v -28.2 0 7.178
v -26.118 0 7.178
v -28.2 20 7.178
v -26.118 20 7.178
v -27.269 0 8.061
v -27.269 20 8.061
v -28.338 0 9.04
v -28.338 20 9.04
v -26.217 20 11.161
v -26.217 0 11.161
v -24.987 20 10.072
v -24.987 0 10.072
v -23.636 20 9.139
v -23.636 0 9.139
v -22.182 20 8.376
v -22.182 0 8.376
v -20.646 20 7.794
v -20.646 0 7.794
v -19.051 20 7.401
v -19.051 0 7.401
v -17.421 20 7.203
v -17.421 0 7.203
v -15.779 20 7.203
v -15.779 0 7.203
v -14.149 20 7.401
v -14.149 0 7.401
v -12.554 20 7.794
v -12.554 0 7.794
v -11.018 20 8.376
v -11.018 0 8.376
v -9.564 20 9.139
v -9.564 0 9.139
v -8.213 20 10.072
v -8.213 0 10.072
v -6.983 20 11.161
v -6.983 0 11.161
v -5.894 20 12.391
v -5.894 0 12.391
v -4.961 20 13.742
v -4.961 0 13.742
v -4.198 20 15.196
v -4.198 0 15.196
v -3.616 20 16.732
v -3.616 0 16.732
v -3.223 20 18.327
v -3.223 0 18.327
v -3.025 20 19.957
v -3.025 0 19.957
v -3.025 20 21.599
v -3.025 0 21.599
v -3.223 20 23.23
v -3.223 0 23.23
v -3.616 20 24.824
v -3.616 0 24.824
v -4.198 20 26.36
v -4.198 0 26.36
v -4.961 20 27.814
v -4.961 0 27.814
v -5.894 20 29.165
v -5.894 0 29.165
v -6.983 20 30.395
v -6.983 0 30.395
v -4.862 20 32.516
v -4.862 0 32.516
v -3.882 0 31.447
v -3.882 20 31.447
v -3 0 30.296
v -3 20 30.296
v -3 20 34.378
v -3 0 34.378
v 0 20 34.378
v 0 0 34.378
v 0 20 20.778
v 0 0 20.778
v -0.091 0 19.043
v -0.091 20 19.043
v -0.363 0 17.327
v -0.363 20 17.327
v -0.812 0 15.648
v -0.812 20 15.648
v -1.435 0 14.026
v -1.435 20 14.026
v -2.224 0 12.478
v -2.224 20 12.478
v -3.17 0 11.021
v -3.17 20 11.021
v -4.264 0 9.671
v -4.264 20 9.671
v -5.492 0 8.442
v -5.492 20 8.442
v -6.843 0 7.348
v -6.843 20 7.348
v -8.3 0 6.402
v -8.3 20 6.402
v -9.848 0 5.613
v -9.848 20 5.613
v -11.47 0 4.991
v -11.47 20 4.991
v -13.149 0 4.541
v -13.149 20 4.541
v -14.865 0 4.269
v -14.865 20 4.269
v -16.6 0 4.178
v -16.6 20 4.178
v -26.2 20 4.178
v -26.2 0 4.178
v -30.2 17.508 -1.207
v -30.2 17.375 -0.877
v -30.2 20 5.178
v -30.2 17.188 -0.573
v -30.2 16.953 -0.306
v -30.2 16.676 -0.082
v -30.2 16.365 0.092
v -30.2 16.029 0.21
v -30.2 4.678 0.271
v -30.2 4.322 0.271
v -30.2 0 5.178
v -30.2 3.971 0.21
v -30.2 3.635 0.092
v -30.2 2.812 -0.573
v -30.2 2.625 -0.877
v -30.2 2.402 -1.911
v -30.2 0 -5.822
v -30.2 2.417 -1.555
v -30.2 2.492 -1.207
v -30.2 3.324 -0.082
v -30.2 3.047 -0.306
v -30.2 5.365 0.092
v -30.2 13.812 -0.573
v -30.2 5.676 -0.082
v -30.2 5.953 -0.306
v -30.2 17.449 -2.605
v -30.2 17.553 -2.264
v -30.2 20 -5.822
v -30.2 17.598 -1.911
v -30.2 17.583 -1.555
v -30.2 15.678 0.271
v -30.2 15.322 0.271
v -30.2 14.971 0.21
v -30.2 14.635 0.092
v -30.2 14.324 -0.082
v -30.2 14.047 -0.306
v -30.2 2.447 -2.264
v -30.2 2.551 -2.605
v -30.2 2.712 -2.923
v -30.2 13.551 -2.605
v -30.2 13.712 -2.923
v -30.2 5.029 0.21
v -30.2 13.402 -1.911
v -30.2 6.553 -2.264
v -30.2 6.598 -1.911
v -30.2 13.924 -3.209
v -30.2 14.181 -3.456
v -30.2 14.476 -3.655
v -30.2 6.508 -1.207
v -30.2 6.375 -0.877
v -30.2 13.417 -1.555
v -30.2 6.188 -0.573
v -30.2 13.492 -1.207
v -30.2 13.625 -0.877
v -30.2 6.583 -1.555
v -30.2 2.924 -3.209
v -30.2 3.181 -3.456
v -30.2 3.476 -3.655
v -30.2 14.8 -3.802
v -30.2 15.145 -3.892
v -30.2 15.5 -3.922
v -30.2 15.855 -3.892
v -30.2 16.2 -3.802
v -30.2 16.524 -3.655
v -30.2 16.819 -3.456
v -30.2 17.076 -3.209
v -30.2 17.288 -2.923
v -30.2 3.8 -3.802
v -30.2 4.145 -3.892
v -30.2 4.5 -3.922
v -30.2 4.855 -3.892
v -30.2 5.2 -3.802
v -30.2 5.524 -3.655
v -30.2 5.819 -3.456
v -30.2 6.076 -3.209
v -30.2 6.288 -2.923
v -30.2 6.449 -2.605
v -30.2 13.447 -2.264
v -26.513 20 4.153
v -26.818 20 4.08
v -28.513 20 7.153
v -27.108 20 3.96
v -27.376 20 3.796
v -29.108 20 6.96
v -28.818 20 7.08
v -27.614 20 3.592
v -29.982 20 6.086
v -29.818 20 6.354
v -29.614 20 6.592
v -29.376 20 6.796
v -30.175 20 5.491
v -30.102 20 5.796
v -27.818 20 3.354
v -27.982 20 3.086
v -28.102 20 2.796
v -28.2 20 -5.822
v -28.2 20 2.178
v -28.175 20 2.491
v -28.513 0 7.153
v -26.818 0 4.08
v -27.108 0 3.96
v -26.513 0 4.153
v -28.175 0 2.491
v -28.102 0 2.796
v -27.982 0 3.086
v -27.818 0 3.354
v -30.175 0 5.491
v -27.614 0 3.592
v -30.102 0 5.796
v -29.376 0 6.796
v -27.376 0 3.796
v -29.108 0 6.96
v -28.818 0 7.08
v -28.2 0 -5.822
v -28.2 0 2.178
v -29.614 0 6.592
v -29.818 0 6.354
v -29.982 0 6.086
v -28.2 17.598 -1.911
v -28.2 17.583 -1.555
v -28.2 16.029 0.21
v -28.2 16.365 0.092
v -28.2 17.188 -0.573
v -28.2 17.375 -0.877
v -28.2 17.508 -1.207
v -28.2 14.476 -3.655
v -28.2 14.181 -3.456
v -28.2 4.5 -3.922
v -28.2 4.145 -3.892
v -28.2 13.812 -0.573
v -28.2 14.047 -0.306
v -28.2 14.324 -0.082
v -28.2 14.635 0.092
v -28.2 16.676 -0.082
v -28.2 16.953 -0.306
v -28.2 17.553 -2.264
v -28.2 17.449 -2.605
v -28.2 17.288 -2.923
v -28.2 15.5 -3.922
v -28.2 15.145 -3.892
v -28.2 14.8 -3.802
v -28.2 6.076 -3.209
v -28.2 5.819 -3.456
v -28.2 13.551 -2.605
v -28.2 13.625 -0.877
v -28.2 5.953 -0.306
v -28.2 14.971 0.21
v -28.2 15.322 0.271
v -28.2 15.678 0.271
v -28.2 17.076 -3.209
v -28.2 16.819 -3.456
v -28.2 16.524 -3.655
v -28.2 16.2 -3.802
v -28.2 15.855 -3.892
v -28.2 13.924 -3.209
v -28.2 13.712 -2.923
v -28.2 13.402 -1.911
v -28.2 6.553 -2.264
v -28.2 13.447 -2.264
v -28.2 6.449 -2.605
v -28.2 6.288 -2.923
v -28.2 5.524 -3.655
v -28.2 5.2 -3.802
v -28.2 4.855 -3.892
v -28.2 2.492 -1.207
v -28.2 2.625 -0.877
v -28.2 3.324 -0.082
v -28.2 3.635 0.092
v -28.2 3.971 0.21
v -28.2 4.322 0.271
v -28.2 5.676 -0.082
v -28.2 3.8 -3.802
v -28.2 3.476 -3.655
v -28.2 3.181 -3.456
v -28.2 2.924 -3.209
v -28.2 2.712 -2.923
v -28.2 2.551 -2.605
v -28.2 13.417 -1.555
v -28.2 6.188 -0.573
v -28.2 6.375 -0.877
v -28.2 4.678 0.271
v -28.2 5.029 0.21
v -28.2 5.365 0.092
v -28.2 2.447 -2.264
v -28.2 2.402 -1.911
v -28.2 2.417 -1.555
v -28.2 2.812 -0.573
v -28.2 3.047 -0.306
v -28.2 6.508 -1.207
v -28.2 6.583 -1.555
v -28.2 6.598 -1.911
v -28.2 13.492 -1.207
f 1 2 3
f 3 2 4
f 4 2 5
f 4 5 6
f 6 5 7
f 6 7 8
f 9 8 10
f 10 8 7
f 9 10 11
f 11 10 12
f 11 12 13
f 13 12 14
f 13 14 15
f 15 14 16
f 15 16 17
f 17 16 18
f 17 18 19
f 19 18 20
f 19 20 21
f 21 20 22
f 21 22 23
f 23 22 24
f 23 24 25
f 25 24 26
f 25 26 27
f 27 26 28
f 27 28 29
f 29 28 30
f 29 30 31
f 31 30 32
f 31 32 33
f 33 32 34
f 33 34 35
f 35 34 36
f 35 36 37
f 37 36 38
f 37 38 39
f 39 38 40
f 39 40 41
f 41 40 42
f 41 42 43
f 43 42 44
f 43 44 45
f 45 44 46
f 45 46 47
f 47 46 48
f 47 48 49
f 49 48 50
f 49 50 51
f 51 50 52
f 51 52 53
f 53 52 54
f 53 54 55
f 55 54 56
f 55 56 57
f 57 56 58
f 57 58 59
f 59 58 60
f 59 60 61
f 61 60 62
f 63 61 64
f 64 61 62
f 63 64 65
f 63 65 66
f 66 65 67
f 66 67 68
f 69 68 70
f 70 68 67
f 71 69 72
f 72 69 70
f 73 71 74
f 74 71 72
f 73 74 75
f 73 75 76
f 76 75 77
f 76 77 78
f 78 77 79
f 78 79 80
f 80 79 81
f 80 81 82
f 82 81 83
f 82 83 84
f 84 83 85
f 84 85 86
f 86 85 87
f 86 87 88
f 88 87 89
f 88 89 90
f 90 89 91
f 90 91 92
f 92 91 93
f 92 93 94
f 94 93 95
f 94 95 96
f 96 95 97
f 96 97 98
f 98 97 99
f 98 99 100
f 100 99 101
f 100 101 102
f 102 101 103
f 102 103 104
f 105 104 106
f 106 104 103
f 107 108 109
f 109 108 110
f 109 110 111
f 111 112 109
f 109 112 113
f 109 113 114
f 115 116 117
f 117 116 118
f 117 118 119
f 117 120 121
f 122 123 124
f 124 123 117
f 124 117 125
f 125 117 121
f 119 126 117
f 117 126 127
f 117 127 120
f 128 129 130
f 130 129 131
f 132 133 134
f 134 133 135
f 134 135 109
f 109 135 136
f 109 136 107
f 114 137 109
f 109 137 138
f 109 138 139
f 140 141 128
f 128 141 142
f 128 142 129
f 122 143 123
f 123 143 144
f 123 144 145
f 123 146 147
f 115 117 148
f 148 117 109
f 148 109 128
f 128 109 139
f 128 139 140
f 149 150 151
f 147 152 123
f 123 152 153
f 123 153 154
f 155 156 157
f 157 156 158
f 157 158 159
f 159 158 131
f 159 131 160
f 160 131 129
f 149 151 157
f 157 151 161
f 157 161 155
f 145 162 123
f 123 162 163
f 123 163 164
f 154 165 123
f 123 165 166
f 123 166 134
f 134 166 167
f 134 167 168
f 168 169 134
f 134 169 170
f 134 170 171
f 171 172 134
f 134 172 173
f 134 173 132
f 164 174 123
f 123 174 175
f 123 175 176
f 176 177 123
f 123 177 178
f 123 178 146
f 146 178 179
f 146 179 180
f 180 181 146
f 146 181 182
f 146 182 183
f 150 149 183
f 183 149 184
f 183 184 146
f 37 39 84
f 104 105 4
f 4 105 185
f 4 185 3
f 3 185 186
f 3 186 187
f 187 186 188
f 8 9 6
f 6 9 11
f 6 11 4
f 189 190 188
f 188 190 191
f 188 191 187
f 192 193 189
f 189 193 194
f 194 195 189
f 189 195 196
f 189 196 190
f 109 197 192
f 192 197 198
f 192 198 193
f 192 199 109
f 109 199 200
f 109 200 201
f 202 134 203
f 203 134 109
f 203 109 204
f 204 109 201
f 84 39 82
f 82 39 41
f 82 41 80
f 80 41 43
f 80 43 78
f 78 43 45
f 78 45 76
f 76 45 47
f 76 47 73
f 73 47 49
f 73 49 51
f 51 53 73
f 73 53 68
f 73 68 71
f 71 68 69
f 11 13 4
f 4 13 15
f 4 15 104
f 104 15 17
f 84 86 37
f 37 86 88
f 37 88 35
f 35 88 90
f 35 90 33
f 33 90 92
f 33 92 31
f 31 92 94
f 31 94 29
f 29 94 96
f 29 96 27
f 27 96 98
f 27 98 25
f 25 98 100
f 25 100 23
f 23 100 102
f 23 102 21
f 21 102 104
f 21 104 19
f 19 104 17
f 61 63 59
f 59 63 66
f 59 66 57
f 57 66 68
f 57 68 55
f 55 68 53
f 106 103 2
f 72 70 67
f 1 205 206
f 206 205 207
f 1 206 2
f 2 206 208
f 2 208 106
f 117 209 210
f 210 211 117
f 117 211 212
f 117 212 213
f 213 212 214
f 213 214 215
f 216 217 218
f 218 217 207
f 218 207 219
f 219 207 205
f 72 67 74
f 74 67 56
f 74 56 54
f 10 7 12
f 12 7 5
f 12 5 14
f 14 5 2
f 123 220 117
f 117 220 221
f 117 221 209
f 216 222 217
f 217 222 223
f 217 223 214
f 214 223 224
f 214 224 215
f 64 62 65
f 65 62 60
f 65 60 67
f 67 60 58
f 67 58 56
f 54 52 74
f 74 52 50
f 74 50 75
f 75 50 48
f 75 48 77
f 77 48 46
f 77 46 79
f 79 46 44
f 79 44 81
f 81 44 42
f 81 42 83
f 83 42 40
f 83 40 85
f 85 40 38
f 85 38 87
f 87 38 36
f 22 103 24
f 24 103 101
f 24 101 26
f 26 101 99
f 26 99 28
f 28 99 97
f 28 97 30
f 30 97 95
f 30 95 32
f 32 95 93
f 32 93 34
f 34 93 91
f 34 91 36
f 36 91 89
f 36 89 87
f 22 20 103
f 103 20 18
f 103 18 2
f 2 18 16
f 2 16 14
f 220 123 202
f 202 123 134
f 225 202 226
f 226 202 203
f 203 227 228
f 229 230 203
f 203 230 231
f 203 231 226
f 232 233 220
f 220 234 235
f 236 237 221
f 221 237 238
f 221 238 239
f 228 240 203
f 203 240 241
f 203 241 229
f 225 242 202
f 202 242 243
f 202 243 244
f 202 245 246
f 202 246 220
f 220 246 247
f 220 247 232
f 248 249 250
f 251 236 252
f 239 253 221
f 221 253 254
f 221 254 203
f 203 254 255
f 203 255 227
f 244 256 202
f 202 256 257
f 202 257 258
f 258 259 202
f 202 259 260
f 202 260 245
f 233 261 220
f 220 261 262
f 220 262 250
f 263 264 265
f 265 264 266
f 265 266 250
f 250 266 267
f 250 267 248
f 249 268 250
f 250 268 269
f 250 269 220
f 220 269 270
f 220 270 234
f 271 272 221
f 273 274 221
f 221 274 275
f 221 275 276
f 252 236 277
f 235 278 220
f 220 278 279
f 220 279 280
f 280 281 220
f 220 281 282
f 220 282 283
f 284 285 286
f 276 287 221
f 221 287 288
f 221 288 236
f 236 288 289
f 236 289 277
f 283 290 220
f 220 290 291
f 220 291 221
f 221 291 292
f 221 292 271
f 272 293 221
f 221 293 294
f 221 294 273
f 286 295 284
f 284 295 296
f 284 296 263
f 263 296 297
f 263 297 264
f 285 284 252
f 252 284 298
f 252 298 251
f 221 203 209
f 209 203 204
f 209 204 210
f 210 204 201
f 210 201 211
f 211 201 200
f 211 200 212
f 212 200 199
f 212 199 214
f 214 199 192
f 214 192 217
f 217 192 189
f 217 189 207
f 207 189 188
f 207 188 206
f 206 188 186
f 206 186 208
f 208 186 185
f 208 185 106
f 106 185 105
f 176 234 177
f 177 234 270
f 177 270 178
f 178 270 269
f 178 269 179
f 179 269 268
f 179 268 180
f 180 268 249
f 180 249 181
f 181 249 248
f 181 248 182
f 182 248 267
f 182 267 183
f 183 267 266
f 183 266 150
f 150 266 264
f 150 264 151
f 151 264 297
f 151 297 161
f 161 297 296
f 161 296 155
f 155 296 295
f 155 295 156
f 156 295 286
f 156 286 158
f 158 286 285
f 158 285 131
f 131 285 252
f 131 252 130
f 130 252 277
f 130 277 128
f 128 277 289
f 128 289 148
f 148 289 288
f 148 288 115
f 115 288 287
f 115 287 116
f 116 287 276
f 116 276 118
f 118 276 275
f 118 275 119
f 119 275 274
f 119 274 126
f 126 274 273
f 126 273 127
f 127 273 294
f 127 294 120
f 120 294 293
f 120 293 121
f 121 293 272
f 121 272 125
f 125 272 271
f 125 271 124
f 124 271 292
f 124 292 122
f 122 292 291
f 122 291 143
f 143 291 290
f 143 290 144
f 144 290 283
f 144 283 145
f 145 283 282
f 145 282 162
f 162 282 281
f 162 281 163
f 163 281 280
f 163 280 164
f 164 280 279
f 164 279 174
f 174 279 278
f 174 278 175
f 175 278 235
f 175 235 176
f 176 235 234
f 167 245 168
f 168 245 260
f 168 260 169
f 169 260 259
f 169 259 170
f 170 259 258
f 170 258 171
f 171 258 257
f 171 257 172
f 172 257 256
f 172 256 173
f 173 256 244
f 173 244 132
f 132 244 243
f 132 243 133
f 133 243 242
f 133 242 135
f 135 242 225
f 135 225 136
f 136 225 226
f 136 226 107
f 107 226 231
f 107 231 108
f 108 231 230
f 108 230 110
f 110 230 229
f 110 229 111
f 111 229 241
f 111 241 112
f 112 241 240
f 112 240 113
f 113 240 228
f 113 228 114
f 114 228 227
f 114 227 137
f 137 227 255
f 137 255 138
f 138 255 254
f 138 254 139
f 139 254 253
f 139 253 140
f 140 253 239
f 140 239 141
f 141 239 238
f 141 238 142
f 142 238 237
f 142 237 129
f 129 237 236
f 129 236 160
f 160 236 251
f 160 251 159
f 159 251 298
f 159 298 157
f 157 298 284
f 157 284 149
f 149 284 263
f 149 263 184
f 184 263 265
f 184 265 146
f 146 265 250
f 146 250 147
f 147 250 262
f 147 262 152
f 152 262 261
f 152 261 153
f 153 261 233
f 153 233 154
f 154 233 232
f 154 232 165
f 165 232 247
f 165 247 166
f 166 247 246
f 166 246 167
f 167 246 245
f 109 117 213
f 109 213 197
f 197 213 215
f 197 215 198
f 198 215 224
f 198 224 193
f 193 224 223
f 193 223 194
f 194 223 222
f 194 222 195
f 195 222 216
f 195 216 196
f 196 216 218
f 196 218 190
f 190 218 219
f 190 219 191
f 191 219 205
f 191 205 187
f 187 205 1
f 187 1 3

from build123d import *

# Parameters (mm, degrees)
EXTRUDE_2_DEPTH     = 20
SKETCH_2_W          = 2
SKETCH_2_H          = 10
EXTRUDE_3_DEPTH     = 20
FILLET_1_R          = 2
SKETCH_3_R          = 2.1
CUT_EXTRUDE_1_DEPTH = 20
FILLET_2_R          = 2


with BuildPart() as part:
    # 草图1 → 凸台-拉伸2 (new body)
    with BuildSketch(Plane(origin=(0, 0, 0), x_dir=(1, 0, 0), z_dir=(0, 1, 0))):
        with BuildLine():
            ThreePointArc((0, -20.77807044), (-4.862027432, -9.040097872), (-16.6, -4.17807044))
            Line((-16.6, -4.17807044), (-30.2, -4.17807044))
            Line((-30.2, -4.17807044), (-30.2, -7.17807044))
            Line((-30.2, -7.17807044), (-26.118403227, -7.17807044))
            ThreePointArc((-26.118403227, -7.17807044), (-27.268887689, -8.060569291), (-28.337972568, -9.040097872))
            Line((-28.337972568, -9.040097872), (-26.216652224, -11.161418216))
            ThreePointArc((-26.216652224, -11.161418216), (-25.340775456, -10.358912872), (-24.398209873, -9.635901765))
            ThreePointArc((-24.398209873, -9.635901765), (-20.688184562, -7.807074064), (-16.6, -7.17807044))
            ThreePointArc((-16.6, -7.17807044), (-6.983347776, -11.161418216), (-3, -20.77807044))
            ThreePointArc((-3, -20.77807044), (-3.629003624, -24.866255002), (-5.457831325, -28.576280313))
            ThreePointArc((-5.457831325, -28.576280313), (-6.180842432, -29.518845896), (-6.983347776, -30.394722664))
            Line((-6.983347776, -30.394722664), (-4.862027432, -32.516043007))
            ThreePointArc((-4.862027432, -32.516043007), (-3.882498851, -31.446958129), (-3, -30.296473667))
            Line((-3, -30.296473667), (-3, -34.37807044))
            Line((-3, -34.37807044), (0, -34.37807044))
            Line((0, -34.37807044), (0, -20.77807044))
        make_face()
    extrude(amount=EXTRUDE_2_DEPTH)

    # 草图2 → 凸台-拉伸3 (add)
    with BuildSketch(Plane(origin=(0, 20, 0), x_dir=(1, 0, 0), z_dir=(0, 1, 0))):
        with Locations((-29.2, 0.82192956)):
            Rectangle(SKETCH_2_W, SKETCH_2_H)
    extrude(amount=-EXTRUDE_3_DEPTH)

    # 圆角1
    fillet_1_edges = [part.edges().sort_by_distance(p)[0] for p in [
        (-28.2, 10, 4.17807044),
    ]]
    fillet(fillet_1_edges, radius=FILLET_1_R)

    # 草图3 → 切除-拉伸1 (cut)
    with BuildSketch(Plane(origin=(-28.2, 0, 0), x_dir=(0, 0, -1), z_dir=(1, 0, 0))):
        with Locations((1.82192956, 15.5)):
            Circle(SKETCH_3_R)
        with Locations((1.82192956, 4.5)):
            Circle(SKETCH_3_R)
    extrude(amount=-CUT_EXTRUDE_1_DEPTH, mode=Mode.SUBTRACT)

    # 圆角2
    fillet_2_edges = [part.edges().sort_by_distance(p)[0] for p in [
        (-30.2, 10, 7.17807044),
    ]]
    fillet(fillet_2_edges, radius=FILLET_2_R)


solid = part.part
